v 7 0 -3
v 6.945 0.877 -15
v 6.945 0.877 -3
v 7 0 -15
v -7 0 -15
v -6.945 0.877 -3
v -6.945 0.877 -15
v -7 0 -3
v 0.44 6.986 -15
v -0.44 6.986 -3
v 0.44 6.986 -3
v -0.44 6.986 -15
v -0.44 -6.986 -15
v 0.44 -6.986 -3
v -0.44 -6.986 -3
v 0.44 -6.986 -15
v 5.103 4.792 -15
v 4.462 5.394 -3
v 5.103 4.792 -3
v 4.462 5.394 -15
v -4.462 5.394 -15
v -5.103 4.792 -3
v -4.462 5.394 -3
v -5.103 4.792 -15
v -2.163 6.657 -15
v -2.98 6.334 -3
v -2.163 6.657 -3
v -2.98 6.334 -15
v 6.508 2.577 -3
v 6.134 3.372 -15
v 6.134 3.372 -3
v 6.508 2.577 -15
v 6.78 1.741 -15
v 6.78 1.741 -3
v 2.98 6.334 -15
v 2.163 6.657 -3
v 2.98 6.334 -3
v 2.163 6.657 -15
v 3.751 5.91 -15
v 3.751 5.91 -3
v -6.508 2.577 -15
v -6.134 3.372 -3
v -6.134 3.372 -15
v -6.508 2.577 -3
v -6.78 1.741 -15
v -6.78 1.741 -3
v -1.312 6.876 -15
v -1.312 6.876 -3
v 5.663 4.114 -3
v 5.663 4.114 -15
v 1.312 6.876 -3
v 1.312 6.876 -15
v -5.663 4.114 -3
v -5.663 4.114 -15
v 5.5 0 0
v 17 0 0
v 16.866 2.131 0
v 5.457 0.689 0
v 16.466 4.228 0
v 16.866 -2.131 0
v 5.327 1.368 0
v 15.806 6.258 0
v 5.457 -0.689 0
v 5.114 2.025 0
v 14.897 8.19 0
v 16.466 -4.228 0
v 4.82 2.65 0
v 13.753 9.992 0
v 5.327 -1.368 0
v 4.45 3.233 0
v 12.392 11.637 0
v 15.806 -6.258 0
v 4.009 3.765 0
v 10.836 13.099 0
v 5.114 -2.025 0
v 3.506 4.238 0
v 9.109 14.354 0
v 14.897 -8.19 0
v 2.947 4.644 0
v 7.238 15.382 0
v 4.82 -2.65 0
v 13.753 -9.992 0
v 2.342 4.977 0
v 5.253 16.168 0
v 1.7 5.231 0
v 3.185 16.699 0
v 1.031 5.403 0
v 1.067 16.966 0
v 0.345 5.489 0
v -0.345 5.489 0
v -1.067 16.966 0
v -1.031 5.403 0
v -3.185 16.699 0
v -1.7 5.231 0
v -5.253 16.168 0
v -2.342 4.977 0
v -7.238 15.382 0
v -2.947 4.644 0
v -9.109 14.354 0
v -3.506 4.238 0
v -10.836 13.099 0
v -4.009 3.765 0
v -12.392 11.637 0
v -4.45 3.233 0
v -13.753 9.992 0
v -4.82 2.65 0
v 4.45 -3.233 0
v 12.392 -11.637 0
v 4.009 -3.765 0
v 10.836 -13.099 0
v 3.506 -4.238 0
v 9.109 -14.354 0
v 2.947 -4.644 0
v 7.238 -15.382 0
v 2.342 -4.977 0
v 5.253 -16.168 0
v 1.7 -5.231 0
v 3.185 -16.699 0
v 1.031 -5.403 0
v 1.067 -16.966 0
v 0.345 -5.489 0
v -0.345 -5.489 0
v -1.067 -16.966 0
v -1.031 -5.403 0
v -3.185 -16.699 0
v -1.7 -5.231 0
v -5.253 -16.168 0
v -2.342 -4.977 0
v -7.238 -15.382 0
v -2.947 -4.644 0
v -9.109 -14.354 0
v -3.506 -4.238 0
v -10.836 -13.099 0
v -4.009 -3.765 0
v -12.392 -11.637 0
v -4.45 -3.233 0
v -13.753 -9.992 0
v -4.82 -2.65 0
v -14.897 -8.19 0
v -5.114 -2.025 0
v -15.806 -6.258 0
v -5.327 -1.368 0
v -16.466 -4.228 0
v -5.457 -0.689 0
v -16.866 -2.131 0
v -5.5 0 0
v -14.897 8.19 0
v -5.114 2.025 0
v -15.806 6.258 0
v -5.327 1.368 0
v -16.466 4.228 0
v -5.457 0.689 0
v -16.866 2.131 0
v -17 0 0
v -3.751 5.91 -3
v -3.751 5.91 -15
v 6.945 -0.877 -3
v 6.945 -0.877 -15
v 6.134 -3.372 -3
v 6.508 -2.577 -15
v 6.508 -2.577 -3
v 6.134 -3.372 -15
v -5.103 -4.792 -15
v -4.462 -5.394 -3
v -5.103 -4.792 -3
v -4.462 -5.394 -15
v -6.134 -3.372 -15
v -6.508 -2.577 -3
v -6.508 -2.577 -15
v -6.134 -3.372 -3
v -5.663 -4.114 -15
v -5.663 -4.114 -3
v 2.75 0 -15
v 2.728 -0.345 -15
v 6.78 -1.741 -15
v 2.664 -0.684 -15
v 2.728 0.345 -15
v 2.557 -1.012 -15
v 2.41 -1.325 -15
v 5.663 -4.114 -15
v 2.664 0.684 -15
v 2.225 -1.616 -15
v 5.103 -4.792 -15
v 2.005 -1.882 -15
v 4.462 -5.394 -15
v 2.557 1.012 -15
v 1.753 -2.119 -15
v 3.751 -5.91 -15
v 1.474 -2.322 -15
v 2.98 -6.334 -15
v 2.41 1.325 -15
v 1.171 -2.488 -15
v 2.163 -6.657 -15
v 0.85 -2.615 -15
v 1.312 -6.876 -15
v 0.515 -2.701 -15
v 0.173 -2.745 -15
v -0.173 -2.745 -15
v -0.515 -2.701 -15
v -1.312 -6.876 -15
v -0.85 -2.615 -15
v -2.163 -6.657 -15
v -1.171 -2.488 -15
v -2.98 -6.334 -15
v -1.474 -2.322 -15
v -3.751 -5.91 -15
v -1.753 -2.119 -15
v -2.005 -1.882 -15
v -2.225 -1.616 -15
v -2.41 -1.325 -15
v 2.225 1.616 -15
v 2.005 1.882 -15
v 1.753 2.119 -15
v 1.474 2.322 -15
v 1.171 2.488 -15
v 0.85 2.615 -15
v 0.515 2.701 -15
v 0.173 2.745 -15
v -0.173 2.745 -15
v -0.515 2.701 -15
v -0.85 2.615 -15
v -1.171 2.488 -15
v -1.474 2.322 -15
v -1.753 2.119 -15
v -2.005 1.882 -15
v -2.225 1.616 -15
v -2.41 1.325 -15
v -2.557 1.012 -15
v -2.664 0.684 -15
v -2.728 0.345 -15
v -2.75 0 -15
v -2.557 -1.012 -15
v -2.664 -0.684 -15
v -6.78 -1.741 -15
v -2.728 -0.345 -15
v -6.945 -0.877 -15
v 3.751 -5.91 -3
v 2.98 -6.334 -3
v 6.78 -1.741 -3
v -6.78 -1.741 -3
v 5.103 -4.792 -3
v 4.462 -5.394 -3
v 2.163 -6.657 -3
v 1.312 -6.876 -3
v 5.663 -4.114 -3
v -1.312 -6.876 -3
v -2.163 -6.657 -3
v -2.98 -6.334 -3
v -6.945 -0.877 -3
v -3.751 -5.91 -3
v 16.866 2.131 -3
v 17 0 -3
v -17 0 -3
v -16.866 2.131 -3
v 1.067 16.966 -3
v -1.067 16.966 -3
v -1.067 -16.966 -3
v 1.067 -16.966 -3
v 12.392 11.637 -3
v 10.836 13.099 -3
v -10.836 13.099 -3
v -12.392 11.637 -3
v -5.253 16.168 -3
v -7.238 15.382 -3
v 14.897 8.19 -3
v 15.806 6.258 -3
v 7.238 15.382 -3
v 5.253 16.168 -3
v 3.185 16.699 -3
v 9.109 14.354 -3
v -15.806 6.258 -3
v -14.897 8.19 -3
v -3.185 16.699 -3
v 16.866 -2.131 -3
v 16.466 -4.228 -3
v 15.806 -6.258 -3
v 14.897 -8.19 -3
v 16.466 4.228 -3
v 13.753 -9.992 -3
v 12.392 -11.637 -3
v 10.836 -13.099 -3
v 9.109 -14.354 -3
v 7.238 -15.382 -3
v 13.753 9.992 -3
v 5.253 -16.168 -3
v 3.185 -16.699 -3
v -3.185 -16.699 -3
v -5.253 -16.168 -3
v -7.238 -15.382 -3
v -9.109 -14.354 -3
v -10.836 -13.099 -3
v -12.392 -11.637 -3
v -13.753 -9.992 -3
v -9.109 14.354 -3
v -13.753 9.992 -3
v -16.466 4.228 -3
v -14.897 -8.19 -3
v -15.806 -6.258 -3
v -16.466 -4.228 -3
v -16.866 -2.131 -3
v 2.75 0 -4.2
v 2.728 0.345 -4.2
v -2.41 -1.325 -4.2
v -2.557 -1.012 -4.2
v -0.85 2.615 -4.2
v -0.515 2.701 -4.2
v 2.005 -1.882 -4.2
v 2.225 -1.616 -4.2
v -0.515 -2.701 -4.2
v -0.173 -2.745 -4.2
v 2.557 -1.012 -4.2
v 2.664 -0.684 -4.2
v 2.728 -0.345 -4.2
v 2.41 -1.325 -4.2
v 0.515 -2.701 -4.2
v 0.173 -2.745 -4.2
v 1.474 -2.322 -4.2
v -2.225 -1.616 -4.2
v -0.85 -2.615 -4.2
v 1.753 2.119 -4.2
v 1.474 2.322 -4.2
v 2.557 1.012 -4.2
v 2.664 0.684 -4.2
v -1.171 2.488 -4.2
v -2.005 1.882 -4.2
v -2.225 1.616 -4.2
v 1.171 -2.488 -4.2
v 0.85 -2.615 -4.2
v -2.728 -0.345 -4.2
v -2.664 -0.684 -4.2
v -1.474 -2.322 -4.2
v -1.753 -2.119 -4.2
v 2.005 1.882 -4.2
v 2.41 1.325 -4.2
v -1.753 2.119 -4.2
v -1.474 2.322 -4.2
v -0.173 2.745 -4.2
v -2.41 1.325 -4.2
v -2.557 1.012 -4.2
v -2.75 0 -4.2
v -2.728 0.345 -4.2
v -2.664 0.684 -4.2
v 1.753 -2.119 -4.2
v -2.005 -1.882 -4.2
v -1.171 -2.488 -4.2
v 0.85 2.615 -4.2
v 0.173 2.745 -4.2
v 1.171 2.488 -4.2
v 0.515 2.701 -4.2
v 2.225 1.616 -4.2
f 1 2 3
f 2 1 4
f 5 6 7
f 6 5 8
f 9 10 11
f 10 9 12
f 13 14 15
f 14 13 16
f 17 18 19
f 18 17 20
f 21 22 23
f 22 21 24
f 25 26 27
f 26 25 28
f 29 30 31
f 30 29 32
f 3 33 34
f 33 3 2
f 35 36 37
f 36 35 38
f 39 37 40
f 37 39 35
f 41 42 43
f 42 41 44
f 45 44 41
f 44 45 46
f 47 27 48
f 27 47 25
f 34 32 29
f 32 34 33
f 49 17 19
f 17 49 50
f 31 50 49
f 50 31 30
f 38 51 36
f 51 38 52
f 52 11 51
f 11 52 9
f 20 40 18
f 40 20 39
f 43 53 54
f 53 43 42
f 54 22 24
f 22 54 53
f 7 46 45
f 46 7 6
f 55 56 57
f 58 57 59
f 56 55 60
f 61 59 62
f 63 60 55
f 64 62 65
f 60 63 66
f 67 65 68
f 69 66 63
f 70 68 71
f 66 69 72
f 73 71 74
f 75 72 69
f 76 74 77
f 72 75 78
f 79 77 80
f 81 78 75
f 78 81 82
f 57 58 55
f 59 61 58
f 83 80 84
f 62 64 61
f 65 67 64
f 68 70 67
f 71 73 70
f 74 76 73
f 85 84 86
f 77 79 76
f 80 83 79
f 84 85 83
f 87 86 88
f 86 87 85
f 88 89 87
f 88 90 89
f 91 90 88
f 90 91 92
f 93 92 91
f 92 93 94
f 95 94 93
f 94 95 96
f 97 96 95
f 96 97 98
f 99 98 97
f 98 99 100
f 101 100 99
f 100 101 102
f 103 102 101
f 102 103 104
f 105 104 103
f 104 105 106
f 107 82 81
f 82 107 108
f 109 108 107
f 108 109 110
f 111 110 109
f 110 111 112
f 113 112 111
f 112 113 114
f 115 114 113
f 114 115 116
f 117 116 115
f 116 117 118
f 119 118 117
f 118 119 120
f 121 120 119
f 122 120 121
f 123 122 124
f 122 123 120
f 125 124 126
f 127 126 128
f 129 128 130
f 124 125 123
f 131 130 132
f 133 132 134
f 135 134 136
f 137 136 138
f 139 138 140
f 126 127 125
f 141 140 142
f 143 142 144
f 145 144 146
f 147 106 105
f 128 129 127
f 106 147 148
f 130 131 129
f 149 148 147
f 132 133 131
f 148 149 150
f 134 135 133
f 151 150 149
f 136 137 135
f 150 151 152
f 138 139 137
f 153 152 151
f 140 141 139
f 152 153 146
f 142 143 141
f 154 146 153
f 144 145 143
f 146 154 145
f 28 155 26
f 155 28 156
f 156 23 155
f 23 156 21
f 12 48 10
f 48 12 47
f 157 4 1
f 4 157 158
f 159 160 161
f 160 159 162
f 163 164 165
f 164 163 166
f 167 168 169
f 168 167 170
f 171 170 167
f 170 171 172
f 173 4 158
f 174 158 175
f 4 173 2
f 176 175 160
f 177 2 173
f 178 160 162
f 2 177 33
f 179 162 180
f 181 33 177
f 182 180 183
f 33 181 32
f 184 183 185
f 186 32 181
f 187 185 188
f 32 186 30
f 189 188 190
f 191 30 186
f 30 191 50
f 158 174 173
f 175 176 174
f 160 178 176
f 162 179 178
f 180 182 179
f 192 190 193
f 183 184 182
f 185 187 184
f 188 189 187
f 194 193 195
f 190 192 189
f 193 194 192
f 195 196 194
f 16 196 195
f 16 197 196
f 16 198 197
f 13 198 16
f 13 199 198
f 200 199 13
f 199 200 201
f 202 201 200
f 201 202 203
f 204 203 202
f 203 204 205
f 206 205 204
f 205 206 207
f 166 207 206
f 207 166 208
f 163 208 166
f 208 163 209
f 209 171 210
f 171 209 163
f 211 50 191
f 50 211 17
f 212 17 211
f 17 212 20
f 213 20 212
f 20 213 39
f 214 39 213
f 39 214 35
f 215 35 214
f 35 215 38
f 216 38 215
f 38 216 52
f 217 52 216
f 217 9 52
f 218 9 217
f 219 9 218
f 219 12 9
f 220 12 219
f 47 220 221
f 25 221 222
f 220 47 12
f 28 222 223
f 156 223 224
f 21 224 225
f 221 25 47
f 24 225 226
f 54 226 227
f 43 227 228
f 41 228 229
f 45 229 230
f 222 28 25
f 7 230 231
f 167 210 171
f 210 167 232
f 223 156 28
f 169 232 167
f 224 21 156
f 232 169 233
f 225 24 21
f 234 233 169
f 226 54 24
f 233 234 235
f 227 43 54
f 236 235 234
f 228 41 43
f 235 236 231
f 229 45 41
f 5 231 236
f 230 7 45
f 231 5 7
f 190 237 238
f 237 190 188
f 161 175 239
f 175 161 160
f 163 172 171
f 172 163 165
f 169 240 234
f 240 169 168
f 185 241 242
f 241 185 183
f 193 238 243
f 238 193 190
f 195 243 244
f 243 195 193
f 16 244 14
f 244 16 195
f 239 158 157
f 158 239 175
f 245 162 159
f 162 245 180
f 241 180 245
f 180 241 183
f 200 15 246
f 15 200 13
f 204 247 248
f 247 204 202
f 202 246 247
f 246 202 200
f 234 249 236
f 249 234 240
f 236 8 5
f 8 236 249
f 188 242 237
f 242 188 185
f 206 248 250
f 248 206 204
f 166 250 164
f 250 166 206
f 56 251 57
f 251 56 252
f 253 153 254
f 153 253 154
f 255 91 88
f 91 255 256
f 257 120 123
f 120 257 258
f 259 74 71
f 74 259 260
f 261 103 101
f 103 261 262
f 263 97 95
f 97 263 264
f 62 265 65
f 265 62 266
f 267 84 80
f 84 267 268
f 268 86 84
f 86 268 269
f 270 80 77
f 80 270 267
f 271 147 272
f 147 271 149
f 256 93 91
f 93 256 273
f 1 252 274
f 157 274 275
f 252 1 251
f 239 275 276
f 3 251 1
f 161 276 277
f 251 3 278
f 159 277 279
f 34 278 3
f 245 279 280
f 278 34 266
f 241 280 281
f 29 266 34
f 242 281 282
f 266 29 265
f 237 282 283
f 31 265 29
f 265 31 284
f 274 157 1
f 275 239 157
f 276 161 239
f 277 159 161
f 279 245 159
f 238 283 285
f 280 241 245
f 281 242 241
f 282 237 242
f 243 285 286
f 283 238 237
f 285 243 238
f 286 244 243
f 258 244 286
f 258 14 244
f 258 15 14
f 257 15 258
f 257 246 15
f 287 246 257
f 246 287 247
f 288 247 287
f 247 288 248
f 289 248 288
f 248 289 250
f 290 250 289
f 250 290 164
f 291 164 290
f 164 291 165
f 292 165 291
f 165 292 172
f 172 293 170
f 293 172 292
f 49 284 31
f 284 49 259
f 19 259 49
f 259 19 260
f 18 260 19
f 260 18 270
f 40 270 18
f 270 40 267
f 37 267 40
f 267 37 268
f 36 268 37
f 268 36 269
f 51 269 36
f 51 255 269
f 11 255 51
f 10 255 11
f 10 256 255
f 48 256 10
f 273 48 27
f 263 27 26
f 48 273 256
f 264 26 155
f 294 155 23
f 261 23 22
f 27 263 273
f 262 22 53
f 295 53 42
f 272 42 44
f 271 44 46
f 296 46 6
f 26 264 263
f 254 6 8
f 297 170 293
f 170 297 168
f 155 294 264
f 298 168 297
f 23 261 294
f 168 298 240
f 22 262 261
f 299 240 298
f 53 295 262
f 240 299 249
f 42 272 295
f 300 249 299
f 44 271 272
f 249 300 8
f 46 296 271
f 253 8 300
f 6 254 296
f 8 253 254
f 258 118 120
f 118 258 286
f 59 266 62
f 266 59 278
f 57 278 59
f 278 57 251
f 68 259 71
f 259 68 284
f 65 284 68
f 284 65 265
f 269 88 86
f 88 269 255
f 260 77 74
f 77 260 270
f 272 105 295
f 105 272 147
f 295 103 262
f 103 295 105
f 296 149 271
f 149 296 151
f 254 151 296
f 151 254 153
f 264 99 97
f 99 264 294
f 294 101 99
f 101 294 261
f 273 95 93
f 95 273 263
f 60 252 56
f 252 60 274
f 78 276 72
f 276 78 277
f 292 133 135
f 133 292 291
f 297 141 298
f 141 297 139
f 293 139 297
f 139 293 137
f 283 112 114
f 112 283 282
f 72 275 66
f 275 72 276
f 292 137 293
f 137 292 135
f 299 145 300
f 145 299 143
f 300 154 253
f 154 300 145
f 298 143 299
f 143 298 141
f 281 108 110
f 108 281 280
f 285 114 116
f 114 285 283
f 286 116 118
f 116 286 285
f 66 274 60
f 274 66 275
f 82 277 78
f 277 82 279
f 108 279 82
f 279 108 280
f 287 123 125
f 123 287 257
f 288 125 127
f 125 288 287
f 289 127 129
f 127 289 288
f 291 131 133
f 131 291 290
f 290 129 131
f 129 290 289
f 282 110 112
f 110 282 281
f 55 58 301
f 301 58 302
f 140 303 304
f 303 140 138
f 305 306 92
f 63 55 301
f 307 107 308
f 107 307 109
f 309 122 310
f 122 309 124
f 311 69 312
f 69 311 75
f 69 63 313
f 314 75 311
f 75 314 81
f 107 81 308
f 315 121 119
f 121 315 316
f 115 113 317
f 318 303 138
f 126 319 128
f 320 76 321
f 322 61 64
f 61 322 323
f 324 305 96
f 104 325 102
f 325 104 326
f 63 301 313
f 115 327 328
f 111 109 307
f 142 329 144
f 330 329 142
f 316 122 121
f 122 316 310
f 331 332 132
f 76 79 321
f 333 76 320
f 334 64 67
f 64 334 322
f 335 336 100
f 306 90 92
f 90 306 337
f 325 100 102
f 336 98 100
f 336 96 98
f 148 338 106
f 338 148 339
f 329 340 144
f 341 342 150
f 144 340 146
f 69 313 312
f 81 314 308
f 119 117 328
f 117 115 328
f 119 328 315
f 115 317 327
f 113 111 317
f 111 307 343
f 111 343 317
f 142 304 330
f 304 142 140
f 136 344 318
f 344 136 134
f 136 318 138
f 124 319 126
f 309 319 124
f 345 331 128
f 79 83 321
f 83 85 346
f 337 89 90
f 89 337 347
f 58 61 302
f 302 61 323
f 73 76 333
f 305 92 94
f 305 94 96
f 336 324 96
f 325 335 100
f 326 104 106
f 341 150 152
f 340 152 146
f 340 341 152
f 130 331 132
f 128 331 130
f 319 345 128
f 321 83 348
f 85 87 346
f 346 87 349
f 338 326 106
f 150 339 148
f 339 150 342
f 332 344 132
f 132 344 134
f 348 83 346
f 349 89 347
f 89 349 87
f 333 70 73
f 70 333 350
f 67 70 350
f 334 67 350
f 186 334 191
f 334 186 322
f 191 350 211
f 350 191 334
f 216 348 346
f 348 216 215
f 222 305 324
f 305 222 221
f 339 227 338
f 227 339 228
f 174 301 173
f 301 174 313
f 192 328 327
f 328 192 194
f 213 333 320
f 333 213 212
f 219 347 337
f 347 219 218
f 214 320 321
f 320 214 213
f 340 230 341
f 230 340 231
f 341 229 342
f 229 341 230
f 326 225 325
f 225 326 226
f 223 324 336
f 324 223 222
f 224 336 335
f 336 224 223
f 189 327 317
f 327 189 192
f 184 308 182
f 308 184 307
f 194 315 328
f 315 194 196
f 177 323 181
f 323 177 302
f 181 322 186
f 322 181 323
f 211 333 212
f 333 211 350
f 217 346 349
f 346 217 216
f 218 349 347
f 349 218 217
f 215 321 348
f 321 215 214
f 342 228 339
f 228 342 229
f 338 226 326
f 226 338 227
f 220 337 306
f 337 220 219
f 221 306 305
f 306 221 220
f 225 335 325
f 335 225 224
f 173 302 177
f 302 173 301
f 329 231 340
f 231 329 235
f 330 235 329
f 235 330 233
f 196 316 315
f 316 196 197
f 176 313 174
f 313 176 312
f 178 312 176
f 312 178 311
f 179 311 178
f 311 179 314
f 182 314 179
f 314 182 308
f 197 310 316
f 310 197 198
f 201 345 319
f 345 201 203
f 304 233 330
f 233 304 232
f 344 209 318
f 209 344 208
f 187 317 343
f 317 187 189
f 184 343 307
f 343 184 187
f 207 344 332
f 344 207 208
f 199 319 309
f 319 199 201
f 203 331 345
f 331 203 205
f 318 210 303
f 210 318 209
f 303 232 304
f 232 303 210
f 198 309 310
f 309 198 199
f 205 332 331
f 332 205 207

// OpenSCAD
$fn = 50;


difference() {
	union() {
		translate(v = [0, 0, -15.0000000000]) {
			cylinder(h = 15, r = 7.0000000000);
		}
		translate(v = [0, 0, -3.0000000000]) {
			cylinder(h = 3, r = 17.0000000000);
		}
	}
	union() {
		translate(v = [0, 0, 0]) {
			rotate(a = [0, 0, 0]) {
				difference() {
					union() {
						#translate(v = [0, 0, -15.0000000000]) {
							cylinder(h = 15, r = 2.2500000000);
						}
						#translate(v = [0, 0, -4.2000000000]) {
							cylinder(h = 4.2000000000, r = 7.0000000000, r1 = 2.7500000000, r2 = 5.5000000000);
						}
						#translate(v = [0, 0, -15.0000000000]) {
							cylinder(h = 15, r = 2.7500000000);
						}
						#translate(v = [0, 0, -15.0000000000]) {
							cylinder(h = 15, r = 2.2500000000);
						}
					}
					union();
				}
			}
		}
	}
}
